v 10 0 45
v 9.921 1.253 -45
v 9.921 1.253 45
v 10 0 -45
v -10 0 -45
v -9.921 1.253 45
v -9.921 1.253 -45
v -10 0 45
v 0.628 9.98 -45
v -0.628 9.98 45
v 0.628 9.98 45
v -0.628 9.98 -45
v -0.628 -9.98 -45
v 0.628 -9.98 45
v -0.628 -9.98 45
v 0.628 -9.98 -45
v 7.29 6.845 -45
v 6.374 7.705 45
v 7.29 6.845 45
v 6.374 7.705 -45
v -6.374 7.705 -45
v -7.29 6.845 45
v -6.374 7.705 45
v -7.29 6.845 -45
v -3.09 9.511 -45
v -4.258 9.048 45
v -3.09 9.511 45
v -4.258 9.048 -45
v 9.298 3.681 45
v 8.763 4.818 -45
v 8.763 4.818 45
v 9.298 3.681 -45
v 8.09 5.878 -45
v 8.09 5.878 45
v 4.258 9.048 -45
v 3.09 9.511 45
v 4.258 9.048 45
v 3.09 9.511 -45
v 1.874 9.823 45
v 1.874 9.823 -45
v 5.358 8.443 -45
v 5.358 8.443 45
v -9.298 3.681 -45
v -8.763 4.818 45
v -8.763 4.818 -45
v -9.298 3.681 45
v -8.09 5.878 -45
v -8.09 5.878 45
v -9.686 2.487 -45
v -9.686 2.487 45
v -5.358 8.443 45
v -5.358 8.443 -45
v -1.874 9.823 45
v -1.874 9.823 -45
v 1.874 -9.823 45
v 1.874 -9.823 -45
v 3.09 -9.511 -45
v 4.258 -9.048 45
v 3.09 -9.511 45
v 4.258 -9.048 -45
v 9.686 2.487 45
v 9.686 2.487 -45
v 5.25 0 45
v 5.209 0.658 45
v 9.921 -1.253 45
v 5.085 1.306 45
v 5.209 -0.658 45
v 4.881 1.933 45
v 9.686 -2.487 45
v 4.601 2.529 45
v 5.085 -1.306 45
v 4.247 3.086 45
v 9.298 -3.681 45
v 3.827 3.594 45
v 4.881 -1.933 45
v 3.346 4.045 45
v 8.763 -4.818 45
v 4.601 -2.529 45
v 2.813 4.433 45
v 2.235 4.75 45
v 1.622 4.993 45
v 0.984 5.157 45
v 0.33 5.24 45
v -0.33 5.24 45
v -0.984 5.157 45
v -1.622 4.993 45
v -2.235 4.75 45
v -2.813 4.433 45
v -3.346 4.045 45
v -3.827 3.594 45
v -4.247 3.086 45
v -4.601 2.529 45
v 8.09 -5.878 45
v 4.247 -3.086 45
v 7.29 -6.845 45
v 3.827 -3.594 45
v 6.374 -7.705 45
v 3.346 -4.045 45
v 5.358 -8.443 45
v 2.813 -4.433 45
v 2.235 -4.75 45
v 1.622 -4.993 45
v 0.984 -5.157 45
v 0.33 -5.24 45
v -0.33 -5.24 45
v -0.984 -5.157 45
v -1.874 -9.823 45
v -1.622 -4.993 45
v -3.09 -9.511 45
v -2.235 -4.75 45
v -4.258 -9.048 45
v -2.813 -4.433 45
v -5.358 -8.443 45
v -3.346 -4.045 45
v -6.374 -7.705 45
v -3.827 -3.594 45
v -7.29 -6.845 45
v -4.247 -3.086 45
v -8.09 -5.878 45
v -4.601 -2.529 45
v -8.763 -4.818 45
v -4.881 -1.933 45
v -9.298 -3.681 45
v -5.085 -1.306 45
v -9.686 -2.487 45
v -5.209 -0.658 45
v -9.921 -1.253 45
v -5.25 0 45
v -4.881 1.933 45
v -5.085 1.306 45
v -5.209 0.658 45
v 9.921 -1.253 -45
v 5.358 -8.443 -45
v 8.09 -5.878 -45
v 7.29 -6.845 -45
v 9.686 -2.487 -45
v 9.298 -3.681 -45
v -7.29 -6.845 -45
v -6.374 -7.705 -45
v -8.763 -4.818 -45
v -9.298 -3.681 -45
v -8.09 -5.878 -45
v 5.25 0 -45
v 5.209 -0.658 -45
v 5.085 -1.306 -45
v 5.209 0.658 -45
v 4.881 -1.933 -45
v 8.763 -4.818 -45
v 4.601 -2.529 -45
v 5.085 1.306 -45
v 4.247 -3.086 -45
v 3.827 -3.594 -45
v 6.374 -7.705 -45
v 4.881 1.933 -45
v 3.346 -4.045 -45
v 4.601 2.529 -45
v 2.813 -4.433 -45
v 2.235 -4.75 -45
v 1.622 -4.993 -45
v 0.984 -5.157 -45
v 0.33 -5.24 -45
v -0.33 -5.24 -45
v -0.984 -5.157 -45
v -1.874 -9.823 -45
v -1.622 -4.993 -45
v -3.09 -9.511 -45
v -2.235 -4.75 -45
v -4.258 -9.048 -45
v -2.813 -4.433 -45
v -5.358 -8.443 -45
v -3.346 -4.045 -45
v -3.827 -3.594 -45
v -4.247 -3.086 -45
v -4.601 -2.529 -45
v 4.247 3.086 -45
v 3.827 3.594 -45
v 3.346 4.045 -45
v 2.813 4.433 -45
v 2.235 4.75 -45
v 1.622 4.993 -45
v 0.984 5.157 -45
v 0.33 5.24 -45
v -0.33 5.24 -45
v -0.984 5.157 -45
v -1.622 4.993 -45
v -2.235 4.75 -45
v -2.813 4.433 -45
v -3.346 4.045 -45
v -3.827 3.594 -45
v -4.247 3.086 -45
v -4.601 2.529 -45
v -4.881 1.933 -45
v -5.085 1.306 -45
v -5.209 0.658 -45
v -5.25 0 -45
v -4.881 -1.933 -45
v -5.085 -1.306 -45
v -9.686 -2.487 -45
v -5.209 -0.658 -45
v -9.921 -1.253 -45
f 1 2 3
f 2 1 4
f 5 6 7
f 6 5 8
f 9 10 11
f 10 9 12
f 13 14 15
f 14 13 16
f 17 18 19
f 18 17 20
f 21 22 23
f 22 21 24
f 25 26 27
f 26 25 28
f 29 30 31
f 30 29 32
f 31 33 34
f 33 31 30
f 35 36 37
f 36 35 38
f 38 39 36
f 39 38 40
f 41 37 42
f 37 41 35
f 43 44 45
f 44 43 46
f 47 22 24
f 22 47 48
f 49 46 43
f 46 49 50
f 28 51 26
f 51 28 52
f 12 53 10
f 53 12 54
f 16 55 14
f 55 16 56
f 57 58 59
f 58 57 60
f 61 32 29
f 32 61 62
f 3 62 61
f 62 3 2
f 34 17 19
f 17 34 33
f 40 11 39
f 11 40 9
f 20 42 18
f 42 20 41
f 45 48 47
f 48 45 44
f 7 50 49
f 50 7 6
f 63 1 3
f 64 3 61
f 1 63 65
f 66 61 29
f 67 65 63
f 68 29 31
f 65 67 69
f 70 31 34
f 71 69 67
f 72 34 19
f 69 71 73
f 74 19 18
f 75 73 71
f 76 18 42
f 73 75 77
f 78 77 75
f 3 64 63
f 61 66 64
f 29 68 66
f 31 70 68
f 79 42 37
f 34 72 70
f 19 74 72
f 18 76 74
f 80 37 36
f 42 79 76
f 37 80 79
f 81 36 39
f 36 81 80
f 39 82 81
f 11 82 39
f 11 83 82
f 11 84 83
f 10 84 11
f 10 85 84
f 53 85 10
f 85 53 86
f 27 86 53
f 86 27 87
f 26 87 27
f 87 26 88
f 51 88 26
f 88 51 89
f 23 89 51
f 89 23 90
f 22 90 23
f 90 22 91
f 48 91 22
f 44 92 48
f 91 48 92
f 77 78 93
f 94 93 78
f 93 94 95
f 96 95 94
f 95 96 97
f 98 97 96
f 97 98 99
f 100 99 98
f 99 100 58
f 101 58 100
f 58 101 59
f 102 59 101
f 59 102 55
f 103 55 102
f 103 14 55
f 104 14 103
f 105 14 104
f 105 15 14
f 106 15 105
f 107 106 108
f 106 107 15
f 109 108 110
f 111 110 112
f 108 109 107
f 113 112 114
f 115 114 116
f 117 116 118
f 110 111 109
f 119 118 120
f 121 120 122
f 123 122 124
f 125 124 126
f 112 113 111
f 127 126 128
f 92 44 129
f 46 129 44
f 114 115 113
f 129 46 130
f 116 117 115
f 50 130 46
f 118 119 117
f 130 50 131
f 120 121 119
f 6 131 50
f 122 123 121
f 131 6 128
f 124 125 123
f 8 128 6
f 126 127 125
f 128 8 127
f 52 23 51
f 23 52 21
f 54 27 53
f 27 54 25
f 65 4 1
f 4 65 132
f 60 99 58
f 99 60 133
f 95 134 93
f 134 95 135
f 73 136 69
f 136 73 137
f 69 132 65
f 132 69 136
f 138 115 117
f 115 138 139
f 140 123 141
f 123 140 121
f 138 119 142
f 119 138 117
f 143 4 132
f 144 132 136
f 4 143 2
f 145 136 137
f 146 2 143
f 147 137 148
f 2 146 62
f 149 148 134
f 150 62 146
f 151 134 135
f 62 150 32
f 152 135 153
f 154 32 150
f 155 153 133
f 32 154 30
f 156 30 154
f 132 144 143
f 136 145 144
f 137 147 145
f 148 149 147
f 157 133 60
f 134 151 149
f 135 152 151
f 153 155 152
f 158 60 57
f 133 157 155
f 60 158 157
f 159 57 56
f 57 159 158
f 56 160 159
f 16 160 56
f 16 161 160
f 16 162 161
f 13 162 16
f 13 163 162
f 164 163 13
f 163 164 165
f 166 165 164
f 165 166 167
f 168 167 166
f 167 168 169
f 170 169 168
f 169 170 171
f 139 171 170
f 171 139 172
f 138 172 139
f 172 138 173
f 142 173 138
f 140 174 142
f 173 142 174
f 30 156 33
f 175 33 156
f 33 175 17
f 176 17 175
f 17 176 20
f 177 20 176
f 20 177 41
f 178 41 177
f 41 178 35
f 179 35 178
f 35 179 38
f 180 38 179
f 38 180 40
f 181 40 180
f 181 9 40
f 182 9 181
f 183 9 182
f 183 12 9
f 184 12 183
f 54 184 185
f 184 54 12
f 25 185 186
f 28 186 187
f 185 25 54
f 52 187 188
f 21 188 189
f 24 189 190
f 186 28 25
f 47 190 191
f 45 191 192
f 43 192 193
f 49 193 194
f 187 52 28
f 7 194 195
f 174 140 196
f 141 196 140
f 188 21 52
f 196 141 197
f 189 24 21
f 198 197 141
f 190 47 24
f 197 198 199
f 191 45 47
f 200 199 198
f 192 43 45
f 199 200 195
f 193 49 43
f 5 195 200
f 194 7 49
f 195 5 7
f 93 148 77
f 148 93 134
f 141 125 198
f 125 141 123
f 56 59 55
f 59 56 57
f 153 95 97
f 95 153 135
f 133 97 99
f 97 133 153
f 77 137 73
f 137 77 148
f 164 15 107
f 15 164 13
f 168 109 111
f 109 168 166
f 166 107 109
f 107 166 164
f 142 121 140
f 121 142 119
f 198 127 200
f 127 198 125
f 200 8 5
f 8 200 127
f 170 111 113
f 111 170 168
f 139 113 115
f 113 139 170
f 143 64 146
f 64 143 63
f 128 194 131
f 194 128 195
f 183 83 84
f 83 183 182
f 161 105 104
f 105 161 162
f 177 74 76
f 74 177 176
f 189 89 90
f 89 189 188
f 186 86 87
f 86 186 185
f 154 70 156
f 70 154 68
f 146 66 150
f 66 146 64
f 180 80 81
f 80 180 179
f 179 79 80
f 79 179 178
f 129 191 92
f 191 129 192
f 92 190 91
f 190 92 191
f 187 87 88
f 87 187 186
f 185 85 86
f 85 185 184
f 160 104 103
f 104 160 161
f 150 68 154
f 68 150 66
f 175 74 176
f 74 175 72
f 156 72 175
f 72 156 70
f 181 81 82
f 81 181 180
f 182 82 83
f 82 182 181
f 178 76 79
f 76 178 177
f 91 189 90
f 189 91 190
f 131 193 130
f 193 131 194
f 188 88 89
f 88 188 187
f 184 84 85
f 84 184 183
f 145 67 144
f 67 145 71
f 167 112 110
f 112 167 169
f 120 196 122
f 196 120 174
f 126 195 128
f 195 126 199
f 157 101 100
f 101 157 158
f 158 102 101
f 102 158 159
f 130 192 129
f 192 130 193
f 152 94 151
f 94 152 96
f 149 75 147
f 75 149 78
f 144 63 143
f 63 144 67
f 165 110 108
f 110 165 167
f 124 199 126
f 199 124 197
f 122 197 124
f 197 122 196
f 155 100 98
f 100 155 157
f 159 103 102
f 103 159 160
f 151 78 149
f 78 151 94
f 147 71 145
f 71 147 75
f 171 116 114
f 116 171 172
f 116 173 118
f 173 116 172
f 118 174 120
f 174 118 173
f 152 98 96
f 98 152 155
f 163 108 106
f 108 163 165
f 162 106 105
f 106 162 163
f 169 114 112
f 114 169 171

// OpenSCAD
$fn = 50;


difference() {
	union() {
		translate(v = [0, 0, -45.0000000000]) {
			cylinder(h = 90, r = 10.0000000000);
		}
	}
	union() {
		translate(v = [0, 0, -100.0000000000]) {
			cylinder(h = 200, r = 5.2500000000);
		}
	}
}
